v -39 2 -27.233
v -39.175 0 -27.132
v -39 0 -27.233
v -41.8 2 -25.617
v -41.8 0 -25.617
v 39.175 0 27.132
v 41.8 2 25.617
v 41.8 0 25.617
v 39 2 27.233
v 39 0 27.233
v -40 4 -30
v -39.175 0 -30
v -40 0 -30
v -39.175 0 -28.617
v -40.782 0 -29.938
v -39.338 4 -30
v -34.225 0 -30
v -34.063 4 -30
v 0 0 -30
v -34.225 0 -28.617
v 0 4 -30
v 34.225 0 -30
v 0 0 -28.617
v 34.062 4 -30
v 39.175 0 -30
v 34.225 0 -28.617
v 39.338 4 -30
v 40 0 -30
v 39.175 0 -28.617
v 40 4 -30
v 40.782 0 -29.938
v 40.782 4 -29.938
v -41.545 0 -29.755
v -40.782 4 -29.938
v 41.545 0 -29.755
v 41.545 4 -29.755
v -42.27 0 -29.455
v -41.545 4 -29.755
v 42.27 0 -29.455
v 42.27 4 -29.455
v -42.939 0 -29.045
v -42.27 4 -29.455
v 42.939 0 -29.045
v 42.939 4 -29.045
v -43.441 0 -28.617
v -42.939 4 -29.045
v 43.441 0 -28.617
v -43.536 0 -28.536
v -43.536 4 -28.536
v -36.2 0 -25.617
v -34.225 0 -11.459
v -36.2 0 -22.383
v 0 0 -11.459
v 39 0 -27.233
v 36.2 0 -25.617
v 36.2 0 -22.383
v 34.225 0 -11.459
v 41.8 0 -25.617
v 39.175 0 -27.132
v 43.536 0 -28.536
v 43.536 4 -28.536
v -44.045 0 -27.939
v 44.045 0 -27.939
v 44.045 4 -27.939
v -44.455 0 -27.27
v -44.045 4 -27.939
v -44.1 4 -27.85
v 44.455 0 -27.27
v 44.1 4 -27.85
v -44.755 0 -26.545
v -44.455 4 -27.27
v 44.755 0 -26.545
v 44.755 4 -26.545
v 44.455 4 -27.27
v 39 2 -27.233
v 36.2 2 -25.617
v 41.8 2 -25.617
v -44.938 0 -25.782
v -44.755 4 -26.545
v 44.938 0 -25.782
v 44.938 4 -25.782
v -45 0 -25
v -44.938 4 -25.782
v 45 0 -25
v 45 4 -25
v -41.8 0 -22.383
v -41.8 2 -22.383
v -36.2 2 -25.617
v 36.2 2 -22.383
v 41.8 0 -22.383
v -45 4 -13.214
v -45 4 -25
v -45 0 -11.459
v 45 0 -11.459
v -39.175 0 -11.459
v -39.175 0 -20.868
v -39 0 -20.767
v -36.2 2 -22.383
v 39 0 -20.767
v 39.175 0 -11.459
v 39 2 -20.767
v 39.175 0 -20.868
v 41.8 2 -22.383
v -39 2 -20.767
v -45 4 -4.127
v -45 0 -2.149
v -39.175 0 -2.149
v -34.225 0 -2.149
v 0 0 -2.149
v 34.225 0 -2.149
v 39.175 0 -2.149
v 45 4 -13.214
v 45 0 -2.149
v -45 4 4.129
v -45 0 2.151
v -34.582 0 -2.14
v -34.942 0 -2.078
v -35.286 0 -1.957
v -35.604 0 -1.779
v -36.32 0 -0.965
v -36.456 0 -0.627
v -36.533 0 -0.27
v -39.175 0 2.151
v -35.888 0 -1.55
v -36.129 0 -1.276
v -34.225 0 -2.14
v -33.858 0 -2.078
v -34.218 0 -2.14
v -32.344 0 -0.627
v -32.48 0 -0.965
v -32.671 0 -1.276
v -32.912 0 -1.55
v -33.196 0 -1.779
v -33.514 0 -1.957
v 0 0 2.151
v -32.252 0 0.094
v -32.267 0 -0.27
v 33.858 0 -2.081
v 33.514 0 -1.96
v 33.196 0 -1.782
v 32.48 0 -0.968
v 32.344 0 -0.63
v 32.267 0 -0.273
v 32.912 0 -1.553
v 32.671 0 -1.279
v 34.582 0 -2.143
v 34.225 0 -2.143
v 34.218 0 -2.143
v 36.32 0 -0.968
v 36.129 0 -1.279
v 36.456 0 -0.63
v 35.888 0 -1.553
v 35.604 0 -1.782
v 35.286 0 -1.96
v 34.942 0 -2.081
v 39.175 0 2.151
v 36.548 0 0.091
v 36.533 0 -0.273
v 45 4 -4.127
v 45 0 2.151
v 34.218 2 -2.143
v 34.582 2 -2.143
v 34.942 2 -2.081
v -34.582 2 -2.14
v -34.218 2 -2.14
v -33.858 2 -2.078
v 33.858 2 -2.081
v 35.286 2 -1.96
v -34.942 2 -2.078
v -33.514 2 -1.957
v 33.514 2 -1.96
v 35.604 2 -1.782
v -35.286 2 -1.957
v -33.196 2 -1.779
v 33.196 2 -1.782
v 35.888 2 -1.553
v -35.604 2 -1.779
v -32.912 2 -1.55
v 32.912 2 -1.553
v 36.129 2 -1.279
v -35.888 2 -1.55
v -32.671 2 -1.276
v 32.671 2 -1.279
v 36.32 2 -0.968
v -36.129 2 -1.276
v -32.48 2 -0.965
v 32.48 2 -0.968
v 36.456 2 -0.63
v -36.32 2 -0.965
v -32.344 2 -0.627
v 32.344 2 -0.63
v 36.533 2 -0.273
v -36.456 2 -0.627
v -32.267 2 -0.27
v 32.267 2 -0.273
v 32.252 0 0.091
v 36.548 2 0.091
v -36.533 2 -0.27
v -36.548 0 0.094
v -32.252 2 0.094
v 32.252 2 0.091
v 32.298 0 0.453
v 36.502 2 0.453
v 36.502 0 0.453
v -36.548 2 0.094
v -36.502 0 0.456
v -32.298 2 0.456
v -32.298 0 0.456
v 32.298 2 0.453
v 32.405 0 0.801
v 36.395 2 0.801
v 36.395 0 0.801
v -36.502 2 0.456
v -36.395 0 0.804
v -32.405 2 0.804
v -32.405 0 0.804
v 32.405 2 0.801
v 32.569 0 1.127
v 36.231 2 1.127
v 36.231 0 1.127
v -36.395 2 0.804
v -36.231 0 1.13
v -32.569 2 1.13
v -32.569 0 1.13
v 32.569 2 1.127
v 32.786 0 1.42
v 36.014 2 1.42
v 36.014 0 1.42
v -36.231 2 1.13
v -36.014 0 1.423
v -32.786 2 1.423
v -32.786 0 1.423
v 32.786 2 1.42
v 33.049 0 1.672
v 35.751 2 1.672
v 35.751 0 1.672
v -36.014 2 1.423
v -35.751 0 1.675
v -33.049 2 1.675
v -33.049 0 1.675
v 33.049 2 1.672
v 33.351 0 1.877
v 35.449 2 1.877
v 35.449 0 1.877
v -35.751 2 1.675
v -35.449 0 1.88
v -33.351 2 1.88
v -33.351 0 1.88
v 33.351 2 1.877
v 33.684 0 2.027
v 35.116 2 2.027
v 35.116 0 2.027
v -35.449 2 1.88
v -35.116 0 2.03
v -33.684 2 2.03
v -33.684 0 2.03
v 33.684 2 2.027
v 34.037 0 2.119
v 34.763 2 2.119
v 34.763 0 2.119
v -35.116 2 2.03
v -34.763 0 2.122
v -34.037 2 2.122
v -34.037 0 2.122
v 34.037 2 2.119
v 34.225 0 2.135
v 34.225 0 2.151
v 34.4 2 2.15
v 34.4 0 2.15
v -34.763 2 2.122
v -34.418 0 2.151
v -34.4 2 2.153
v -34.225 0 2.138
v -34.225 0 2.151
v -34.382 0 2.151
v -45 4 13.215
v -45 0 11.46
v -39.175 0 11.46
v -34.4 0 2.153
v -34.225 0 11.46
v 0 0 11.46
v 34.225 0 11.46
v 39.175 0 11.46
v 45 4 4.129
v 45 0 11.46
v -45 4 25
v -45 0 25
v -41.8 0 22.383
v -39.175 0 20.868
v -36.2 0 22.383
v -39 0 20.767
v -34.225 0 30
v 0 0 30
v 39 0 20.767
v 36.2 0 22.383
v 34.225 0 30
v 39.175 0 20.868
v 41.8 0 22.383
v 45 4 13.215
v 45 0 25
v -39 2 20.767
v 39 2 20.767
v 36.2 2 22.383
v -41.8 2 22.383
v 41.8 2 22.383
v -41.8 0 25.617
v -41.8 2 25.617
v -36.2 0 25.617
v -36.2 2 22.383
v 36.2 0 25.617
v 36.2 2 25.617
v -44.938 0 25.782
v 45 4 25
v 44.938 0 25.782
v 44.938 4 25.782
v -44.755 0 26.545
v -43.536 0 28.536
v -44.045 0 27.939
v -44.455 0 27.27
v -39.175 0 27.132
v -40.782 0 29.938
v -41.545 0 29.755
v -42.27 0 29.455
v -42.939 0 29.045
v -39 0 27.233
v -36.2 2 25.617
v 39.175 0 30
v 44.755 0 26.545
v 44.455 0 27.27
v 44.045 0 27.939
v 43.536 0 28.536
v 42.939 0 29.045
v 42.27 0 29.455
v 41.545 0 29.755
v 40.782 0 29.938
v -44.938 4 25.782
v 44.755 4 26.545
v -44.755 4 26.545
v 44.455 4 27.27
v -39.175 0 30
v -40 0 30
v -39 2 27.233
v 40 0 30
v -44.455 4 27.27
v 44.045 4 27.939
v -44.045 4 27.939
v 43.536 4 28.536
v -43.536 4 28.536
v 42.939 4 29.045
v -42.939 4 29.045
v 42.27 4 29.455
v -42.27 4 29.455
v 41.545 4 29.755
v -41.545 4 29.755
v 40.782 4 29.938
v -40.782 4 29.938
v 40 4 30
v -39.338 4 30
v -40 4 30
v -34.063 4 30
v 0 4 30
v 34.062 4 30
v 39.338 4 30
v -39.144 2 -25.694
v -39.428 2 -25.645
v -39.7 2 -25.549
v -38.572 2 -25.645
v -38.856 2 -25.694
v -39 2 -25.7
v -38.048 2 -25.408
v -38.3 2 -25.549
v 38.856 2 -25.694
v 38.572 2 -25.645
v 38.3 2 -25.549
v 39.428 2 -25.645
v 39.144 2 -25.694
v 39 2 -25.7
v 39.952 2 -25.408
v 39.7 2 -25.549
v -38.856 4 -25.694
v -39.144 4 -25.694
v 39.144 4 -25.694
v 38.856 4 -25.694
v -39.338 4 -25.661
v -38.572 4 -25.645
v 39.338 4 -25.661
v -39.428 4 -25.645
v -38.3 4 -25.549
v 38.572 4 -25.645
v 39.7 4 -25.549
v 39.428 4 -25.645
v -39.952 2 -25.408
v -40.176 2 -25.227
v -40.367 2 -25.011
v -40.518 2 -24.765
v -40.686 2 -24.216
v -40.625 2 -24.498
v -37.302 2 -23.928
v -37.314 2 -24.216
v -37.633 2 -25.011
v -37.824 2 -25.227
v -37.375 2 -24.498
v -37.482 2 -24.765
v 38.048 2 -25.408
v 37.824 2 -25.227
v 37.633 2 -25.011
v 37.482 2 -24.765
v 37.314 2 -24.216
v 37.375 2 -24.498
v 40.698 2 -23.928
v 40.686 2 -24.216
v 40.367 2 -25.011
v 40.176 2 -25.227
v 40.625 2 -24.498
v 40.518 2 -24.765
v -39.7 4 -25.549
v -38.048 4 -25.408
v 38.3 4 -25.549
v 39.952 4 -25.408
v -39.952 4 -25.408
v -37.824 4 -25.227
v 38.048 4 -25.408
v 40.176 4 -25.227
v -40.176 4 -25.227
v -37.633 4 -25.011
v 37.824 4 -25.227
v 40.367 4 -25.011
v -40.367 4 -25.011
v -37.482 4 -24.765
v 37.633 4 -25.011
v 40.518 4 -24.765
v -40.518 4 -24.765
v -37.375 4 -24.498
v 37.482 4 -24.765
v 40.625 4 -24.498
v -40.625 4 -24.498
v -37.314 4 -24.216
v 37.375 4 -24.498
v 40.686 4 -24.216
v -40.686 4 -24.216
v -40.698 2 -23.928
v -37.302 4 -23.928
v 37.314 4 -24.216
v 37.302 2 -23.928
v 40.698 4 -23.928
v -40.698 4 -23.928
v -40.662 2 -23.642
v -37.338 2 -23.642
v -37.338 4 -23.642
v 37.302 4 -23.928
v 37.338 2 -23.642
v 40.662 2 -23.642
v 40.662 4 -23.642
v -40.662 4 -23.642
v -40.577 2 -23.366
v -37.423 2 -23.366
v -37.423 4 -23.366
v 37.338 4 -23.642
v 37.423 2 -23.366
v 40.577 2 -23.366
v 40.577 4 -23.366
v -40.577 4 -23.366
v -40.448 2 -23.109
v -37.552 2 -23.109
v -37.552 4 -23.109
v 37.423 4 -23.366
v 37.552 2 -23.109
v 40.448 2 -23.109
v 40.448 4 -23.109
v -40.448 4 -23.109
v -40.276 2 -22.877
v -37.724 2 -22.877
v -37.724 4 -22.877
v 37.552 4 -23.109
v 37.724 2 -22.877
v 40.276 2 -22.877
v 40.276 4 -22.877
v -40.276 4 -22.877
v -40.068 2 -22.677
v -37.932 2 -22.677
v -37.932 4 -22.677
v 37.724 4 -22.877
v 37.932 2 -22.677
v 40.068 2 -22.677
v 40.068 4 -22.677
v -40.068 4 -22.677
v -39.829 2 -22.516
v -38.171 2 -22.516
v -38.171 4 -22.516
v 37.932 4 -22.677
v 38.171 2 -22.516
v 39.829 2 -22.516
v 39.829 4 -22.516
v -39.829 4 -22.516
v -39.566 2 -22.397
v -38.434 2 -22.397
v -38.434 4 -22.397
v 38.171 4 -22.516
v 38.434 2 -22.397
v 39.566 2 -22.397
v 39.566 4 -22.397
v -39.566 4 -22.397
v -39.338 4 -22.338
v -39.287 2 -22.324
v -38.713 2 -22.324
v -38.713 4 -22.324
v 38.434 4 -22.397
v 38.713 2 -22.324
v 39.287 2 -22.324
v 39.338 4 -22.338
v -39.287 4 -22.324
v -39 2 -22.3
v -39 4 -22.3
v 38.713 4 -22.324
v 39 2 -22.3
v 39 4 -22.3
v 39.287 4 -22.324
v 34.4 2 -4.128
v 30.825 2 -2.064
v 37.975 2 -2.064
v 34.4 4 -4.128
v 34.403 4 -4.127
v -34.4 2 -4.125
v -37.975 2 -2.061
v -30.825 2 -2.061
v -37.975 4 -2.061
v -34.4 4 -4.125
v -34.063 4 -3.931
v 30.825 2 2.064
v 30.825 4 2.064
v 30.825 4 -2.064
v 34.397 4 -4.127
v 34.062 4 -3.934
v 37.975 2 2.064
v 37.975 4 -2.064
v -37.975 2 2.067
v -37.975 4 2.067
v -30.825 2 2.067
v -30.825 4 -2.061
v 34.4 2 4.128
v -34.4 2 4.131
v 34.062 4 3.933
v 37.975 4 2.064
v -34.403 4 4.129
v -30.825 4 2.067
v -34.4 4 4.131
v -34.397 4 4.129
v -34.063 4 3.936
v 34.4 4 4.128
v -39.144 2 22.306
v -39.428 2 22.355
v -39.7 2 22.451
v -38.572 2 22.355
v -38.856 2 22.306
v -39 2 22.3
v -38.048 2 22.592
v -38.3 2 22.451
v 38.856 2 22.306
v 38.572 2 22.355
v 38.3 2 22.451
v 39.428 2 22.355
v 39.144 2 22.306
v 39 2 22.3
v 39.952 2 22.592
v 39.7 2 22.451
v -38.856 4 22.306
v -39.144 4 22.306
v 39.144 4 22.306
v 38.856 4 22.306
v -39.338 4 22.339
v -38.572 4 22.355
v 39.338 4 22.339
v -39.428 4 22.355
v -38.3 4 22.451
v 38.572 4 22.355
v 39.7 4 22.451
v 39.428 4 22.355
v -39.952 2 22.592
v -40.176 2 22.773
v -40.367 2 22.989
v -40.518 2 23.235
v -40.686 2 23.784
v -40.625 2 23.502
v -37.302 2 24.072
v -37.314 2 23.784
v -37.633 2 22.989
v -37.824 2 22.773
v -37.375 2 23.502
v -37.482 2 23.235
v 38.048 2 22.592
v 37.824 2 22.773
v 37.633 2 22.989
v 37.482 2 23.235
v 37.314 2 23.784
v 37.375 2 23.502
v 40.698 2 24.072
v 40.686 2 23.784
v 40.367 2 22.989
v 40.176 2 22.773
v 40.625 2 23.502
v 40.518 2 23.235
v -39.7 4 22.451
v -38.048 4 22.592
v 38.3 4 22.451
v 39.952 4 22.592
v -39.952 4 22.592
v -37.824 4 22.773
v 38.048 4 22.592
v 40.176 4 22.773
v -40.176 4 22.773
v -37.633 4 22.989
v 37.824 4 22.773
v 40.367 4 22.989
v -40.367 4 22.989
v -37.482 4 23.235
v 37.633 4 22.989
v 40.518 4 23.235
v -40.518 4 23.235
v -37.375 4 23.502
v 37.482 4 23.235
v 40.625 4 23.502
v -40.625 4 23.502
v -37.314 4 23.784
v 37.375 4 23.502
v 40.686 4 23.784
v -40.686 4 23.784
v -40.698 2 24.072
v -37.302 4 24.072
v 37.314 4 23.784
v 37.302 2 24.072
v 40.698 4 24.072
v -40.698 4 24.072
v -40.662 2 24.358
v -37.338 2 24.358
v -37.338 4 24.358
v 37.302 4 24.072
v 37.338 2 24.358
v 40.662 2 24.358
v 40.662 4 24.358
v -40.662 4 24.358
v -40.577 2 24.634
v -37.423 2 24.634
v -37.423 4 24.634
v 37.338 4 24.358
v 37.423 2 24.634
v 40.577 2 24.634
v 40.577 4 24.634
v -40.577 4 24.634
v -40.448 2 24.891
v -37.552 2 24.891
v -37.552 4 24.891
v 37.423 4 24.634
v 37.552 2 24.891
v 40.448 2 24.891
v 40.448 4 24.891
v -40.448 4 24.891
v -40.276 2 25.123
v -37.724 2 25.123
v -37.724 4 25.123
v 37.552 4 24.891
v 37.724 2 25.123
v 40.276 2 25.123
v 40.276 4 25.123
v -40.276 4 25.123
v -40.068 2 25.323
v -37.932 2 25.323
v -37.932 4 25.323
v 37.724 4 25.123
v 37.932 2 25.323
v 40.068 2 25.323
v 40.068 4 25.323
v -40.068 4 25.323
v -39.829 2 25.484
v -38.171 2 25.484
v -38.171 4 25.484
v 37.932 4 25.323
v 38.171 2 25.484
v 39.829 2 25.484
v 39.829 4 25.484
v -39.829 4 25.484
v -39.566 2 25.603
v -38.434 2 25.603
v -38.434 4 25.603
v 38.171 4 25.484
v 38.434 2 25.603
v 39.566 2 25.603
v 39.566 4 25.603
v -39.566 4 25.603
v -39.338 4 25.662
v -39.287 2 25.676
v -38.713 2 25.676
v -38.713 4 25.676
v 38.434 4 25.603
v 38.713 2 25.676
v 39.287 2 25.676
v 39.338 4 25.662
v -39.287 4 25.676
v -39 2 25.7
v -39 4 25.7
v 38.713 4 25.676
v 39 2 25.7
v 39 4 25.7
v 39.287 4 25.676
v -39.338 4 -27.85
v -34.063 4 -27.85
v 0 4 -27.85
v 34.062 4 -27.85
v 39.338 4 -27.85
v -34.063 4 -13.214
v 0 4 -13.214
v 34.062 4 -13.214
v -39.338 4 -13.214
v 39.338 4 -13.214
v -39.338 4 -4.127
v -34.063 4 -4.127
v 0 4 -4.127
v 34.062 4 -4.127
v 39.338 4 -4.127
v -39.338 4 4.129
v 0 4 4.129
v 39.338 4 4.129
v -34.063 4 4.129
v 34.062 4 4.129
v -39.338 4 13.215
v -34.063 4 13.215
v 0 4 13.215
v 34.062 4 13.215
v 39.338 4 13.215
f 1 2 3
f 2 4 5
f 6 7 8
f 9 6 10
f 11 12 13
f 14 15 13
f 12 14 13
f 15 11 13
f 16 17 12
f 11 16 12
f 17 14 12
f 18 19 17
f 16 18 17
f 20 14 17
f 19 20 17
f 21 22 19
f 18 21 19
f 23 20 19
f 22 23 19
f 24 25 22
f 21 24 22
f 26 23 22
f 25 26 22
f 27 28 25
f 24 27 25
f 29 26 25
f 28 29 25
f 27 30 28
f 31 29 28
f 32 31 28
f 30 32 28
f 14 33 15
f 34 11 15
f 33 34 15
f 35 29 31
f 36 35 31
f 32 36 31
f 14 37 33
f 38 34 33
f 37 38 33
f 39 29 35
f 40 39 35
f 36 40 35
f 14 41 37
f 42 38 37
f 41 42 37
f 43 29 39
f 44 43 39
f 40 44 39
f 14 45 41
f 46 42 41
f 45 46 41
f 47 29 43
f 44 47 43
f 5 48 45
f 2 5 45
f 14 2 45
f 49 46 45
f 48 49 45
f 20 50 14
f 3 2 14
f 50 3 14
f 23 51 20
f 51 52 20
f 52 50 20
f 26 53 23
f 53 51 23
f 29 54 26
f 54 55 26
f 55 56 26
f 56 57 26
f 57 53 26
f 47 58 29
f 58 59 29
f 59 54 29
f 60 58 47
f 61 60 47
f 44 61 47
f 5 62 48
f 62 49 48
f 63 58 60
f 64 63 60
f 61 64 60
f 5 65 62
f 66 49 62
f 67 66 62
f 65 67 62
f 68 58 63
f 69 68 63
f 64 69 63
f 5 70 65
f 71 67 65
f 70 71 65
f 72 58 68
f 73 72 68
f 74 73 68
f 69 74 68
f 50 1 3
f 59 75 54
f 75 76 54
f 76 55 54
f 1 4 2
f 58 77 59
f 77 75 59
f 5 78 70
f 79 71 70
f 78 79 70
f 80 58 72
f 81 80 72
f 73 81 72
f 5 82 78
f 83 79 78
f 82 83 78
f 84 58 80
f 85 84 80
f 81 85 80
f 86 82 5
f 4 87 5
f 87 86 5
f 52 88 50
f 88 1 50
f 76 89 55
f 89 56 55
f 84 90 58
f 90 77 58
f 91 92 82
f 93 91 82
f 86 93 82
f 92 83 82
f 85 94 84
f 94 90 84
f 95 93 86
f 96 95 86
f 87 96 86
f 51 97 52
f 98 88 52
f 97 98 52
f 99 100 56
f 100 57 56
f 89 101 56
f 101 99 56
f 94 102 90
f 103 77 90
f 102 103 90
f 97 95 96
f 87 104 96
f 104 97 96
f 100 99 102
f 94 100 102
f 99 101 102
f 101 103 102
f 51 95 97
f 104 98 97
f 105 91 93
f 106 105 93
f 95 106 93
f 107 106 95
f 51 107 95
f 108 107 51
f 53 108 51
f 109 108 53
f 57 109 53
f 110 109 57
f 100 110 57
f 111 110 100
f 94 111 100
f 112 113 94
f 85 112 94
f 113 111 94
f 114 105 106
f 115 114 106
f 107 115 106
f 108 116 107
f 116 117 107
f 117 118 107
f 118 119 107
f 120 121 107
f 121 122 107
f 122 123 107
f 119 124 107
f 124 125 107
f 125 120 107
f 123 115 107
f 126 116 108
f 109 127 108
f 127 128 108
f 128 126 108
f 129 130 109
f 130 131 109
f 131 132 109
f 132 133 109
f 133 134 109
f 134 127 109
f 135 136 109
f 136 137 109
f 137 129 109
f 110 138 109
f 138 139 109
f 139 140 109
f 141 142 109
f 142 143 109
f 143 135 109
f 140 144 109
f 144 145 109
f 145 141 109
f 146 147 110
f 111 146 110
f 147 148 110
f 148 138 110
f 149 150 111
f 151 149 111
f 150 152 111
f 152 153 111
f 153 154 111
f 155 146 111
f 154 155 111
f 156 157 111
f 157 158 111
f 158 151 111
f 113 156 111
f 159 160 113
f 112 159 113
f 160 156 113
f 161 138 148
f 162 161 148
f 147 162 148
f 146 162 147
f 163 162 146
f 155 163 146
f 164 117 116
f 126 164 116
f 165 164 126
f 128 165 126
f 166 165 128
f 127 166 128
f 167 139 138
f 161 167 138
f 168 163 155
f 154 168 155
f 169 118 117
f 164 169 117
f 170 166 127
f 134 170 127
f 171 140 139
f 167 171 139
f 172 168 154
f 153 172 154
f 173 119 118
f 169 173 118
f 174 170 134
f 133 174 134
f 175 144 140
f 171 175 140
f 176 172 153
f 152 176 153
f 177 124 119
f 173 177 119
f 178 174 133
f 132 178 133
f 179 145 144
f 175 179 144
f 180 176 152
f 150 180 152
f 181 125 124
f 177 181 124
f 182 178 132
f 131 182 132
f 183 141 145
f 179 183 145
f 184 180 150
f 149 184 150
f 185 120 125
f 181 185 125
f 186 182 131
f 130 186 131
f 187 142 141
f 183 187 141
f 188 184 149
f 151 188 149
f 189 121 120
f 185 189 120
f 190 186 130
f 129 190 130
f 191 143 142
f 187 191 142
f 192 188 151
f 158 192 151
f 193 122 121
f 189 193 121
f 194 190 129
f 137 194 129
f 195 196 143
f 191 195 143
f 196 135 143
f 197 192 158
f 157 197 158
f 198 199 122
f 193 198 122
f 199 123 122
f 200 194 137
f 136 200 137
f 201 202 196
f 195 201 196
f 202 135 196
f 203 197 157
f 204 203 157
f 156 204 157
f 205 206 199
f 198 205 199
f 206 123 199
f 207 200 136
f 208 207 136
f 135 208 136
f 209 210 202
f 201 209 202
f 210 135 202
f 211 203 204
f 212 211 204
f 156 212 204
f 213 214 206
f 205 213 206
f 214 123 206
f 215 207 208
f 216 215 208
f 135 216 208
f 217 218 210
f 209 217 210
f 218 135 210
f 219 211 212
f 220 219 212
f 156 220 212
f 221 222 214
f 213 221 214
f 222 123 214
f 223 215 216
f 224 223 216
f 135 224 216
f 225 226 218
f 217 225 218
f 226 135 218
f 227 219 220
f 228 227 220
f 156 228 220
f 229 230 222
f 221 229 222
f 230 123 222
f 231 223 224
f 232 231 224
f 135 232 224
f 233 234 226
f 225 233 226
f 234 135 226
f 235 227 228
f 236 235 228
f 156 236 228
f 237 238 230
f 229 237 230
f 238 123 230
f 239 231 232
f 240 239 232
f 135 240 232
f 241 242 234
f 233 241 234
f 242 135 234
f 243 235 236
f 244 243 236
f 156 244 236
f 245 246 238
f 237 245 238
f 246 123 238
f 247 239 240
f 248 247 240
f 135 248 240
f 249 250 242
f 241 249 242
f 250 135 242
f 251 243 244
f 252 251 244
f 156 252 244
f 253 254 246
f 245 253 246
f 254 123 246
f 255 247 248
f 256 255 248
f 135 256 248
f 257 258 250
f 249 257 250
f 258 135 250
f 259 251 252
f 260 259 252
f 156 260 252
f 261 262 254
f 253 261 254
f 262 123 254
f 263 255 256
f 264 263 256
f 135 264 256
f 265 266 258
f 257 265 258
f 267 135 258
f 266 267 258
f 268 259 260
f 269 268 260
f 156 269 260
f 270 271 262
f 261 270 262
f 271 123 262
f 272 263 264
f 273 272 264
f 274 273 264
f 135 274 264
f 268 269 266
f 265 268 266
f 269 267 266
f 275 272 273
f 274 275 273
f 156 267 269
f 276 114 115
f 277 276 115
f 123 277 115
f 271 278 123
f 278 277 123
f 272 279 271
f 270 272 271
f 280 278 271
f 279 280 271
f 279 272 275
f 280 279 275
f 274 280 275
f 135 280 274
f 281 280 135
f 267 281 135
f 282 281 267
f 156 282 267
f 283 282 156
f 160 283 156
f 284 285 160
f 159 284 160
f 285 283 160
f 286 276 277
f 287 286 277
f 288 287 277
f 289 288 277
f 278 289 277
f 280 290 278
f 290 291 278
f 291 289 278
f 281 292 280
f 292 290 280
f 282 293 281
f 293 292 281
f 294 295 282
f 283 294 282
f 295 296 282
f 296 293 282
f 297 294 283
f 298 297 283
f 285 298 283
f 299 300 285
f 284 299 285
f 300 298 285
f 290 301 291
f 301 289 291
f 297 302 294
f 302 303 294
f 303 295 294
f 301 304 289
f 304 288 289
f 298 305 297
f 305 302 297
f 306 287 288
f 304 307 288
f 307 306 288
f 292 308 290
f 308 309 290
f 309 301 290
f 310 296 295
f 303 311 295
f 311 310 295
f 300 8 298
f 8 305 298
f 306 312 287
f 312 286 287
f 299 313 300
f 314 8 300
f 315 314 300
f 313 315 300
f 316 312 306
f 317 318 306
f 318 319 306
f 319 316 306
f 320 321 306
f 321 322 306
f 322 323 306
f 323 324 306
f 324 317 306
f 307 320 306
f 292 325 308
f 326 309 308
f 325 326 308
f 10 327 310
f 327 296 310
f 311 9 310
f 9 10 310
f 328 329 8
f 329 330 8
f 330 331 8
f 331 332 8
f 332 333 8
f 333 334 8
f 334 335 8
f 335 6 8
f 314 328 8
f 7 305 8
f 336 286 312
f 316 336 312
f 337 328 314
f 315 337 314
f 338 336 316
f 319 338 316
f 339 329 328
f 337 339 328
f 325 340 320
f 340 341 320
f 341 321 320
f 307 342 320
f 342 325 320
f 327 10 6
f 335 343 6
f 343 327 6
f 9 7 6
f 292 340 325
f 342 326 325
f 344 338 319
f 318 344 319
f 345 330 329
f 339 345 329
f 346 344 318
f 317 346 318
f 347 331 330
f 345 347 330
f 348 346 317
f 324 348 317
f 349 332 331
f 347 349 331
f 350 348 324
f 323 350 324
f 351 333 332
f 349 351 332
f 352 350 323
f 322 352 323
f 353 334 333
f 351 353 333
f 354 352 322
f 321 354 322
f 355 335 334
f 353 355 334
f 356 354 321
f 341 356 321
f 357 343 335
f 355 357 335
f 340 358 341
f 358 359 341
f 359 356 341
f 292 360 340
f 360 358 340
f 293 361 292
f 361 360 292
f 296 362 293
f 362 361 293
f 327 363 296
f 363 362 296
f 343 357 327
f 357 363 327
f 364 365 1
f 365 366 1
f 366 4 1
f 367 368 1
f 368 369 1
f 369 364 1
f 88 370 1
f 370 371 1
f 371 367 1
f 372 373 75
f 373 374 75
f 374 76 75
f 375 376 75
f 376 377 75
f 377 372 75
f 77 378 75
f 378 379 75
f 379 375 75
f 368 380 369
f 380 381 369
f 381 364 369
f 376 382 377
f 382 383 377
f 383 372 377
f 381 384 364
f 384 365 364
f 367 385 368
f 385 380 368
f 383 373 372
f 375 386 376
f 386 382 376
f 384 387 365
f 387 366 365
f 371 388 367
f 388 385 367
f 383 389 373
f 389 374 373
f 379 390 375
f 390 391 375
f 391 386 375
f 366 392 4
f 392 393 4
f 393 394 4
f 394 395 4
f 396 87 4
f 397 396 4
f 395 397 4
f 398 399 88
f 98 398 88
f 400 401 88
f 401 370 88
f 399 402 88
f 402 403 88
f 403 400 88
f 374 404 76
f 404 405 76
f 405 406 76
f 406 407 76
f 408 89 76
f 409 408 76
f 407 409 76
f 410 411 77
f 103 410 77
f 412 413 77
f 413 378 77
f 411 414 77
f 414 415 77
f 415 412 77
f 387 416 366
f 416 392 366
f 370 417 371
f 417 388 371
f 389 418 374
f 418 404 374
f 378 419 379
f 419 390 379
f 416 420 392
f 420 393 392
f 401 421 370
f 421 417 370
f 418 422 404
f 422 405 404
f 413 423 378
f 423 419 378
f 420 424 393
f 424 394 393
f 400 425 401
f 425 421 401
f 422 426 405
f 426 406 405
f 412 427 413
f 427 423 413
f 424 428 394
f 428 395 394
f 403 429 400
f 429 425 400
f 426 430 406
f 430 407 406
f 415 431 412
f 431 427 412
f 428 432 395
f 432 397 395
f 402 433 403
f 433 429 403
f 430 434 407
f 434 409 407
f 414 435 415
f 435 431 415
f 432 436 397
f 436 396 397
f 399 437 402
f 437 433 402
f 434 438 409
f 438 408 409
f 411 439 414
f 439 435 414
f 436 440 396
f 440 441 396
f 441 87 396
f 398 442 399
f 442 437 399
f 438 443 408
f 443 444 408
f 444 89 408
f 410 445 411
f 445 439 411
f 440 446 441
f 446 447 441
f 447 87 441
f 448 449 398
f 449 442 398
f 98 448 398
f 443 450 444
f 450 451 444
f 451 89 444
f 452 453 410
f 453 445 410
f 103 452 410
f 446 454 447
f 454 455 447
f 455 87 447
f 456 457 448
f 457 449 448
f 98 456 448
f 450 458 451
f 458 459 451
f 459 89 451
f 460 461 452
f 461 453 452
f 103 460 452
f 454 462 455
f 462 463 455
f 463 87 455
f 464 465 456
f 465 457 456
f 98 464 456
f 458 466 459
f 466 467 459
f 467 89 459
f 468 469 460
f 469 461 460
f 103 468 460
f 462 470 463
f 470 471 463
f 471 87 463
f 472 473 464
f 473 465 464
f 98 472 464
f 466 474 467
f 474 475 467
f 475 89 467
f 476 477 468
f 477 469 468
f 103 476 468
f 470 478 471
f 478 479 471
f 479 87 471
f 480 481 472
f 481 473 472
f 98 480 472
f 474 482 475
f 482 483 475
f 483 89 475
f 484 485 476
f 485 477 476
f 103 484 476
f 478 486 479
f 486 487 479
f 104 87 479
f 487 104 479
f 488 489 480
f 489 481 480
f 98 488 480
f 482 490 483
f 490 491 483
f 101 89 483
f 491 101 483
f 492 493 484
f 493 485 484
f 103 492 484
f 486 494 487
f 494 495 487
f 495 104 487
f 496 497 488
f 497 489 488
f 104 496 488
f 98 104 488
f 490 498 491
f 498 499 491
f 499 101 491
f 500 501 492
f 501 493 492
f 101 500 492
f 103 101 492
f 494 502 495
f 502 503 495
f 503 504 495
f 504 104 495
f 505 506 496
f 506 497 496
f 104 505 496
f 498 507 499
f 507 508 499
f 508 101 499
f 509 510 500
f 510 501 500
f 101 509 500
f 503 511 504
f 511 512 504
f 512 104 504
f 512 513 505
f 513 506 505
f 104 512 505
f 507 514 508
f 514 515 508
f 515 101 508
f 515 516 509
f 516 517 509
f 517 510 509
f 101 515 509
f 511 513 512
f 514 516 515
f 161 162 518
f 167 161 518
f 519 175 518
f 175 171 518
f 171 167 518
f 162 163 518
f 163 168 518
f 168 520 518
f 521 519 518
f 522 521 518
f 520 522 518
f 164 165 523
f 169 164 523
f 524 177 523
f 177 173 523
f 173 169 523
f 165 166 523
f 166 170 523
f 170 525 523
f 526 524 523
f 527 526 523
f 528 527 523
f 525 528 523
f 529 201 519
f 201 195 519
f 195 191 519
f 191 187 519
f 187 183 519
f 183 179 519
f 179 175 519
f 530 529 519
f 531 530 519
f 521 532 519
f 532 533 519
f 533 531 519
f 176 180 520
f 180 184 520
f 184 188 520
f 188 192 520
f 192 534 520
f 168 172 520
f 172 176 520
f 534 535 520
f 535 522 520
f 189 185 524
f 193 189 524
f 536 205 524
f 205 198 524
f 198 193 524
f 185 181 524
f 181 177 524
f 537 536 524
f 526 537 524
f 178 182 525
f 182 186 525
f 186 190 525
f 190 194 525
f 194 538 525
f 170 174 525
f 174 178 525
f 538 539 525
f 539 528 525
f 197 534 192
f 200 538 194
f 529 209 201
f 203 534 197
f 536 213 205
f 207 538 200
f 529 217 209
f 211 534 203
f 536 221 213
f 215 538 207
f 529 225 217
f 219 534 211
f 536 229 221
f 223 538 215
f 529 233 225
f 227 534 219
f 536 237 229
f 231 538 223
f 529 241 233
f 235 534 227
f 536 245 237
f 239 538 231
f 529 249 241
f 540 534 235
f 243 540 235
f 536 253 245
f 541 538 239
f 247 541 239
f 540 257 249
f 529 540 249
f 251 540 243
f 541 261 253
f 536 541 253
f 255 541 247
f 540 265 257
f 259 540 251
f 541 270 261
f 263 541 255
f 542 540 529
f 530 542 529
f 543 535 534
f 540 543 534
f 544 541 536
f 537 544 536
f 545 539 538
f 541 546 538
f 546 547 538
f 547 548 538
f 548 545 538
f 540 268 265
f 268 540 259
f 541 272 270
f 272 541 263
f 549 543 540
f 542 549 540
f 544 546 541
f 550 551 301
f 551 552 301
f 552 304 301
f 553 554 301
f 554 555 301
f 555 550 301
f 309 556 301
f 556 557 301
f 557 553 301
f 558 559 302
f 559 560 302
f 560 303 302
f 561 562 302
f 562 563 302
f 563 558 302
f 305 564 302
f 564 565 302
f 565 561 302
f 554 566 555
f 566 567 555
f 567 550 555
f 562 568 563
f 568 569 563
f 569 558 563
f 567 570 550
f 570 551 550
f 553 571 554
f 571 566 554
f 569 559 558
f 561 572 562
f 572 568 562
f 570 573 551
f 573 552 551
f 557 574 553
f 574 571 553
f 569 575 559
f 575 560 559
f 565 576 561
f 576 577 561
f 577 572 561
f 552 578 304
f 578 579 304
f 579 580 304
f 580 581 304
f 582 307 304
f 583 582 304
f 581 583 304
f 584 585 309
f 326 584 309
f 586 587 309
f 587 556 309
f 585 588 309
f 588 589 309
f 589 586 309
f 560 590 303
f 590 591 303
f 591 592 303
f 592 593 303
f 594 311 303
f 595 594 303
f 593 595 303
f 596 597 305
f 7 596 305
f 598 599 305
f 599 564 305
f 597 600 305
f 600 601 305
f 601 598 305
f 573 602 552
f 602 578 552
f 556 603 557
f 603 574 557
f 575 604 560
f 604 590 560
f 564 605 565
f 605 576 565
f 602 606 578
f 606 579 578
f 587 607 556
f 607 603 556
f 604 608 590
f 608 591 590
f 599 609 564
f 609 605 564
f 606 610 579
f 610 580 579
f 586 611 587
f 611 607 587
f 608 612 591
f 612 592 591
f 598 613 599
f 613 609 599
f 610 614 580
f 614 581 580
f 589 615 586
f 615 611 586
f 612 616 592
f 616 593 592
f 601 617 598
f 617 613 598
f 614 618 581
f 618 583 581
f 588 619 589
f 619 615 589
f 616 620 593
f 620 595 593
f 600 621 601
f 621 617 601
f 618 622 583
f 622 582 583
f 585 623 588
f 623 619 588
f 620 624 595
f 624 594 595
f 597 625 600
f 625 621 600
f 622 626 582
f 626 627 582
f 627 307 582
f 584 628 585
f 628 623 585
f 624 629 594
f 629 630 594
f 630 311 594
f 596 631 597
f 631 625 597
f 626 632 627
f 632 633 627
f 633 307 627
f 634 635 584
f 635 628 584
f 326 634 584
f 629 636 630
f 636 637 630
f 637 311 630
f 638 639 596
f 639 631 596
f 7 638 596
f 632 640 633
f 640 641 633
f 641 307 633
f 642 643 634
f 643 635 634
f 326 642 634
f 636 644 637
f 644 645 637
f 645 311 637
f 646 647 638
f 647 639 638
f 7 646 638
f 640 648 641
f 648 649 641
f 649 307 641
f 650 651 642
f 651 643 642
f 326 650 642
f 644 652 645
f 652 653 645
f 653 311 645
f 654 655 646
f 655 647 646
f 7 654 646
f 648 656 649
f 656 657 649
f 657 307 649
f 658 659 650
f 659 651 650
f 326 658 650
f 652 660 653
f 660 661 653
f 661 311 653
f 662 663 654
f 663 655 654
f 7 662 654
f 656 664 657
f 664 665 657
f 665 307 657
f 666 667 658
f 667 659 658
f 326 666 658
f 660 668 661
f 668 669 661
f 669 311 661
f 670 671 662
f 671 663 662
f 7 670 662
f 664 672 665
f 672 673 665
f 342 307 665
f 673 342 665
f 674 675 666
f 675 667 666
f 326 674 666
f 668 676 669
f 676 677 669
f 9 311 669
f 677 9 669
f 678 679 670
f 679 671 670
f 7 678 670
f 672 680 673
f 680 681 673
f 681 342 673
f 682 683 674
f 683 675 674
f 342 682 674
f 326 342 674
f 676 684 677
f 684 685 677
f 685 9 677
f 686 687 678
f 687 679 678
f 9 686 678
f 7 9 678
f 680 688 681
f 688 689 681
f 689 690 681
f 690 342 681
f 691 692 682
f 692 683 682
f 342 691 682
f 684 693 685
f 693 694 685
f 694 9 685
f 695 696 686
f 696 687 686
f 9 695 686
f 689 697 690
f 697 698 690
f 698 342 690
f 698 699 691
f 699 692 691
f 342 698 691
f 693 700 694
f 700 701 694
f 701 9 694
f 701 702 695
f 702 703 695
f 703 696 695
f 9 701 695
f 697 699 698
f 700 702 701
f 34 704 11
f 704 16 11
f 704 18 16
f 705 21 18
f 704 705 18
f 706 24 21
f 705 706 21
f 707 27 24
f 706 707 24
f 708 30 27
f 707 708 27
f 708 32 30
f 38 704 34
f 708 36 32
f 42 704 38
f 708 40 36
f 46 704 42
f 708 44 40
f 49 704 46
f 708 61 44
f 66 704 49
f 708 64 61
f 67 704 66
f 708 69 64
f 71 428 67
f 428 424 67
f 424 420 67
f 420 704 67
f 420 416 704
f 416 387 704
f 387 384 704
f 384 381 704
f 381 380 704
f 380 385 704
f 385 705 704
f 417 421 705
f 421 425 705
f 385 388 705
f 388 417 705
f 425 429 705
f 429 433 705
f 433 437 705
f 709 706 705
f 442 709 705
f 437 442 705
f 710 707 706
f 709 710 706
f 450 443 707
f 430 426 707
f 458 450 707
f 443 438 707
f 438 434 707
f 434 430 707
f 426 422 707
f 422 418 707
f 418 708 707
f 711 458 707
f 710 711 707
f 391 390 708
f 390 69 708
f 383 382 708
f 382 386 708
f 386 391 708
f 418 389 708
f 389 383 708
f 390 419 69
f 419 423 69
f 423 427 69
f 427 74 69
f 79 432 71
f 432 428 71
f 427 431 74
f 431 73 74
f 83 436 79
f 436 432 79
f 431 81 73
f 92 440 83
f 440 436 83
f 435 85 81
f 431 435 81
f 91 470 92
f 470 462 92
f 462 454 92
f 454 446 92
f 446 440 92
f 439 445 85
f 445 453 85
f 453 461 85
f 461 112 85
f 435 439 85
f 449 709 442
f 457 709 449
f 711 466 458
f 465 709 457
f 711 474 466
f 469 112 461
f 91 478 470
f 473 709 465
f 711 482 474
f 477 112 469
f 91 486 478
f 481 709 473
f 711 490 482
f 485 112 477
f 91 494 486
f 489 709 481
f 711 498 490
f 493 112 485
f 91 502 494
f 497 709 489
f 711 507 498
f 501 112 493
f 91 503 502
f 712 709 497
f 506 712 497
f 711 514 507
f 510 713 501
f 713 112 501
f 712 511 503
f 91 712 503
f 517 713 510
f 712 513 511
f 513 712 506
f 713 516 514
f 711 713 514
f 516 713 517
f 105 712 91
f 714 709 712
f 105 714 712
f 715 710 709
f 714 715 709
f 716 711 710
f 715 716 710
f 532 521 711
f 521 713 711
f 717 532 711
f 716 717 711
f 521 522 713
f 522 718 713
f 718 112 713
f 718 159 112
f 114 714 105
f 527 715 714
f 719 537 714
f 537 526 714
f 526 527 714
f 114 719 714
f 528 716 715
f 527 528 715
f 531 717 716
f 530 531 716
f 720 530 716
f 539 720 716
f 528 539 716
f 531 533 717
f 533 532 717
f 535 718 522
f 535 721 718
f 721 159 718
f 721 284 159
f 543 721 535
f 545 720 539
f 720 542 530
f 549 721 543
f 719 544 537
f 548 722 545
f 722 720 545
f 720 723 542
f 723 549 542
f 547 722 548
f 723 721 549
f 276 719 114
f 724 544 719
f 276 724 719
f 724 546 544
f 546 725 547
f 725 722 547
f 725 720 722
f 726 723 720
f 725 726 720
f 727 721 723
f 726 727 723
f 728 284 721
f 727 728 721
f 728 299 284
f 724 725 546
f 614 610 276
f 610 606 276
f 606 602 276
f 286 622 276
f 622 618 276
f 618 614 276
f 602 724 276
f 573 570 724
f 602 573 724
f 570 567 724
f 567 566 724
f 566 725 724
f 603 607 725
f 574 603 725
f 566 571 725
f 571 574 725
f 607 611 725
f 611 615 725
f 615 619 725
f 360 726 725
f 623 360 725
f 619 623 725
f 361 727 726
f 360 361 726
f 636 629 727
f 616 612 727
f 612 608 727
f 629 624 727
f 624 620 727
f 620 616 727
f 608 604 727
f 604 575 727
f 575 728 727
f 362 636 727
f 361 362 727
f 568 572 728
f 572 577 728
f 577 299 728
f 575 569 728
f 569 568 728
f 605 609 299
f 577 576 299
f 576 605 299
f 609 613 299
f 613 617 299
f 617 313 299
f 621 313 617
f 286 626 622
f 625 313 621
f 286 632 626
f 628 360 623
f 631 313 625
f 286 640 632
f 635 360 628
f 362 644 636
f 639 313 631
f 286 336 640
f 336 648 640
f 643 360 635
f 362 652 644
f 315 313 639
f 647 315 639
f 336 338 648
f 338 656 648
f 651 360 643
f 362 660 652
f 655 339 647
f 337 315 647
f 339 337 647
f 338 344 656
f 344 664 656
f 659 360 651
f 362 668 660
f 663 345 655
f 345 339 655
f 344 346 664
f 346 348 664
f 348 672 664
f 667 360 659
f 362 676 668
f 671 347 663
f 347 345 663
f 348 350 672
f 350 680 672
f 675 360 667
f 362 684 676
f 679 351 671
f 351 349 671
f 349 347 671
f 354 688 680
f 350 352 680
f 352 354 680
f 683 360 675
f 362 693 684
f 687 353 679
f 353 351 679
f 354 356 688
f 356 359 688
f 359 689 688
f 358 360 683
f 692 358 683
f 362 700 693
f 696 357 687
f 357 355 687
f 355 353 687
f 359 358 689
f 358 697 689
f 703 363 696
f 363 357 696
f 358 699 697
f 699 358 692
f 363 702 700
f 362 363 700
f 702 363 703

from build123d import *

# Parameters (mm, degrees)
SKETCH1_W           = 90
SKETCH1_H           = 60
BOSS_EXTRUDE1_DEPTH = 4
SKETCH2_R           = 2.15
SKETCH2_R_2         = 1.7
CUT_EXTRUDE1_DEPTH  = 4
CUT_EXTRUDE2_DEPTH  = 2
CUT_EXTRUDE3_DEPTH  = 2
FILLET3_R           = 5


with BuildPart() as part:
    # Sketch1 → Boss-Extrude1 (new body)
    with BuildSketch(Plane(origin=(0, 0, 0), x_dir=(1, 0, 0), z_dir=(0, 1, 0))):
        Rectangle(SKETCH1_W, SKETCH1_H)
    extrude(amount=BOSS_EXTRUDE1_DEPTH)

    # Sketch2 → Cut-Extrude1 (cut)
    with BuildSketch(Plane(origin=(0, 4, 0), x_dir=(1, 0, 0), z_dir=(0, 1, 0))):
        with Locations(Location((-34.3999999, -0.00262532, 0), (0, 0, 270))):
            Circle(SKETCH2_R)
        with Locations(Location((34.400000034, 0.00039051, 0), (0, 0, 270))):
            Circle(SKETCH2_R)
        with Locations(Location((-39, 24, 0), (0, 0, 270))):
            Circle(SKETCH2_R_2)
        with Locations(Location((-39, -24, 0), (0, 0, 270))):
            Circle(SKETCH2_R_2)
        with Locations(Location((39, -24, 0), (0, 0, 270))):
            Circle(SKETCH2_R_2)
        with Locations(Location((39, 24, 0), (0, 0, 270))):
            Circle(SKETCH2_R_2)
    extrude(amount=-CUT_EXTRUDE1_DEPTH, mode=Mode.SUBTRACT)

    # Sketch3 → Cut-Extrude2 (cut)
    with BuildSketch(Plane(origin=(0, 4, 0), x_dir=(1, 0, 0), z_dir=(0, 1, 0))):
        Polygon((-30.8249999, 2.061401893), (-34.3999999, 4.125429105), (-37.9749999, 2.061401893), (-37.9749999, -2.066652532), (-34.3999999, -4.130679744), (-30.8249999, -2.066652532), align=None)
        Polygon((37.975000034, 2.064417722), (34.400000034, 4.128444934), (30.825000034, 2.064417722), (30.825000034, -2.063636703), (34.400000034, -4.127663915), (37.975000034, -2.063636703), align=None)
    extrude(amount=-CUT_EXTRUDE2_DEPTH, mode=Mode.SUBTRACT)

    # Sketch4 → Cut-Extrude3 (cut)
    with BuildSketch(Plane.XZ):
        Polygon((-36.2, 25.616580754), (-39, 27.233161507), (-41.8, 25.616580754), (-41.8, 22.383419246), (-39, 20.766838493), (-36.2, 22.383419246), align=None)
        Polygon((-36.2, -22.383419246), (-39, -20.766838493), (-41.8, -22.383419246), (-41.8, -25.616580754), (-39, -27.233161507), (-36.2, -25.616580754), align=None)
        Polygon((41.8, -22.383419246), (39, -20.766838493), (36.2, -22.383419246), (36.2, -25.616580754), (39, -27.233161507), (41.8, -25.616580754), align=None)
        Polygon((41.8, 25.616580754), (39, 27.233161507), (36.2, 25.616580754), (36.2, 22.383419246), (39, 20.766838493), (41.8, 22.383419246), align=None)
    extrude(amount=-CUT_EXTRUDE3_DEPTH, mode=Mode.SUBTRACT)

    # Fillet3
    fillet3_edges = [part.edges().sort_by_distance(p)[0] for p in [
        (-45, 2, -30),
        (45, 2, -30),
        (45, 2, 30),
        (-45, 2, 30),
    ]]
    fillet(fillet3_edges, radius=FILLET3_R)


solid = part.part
